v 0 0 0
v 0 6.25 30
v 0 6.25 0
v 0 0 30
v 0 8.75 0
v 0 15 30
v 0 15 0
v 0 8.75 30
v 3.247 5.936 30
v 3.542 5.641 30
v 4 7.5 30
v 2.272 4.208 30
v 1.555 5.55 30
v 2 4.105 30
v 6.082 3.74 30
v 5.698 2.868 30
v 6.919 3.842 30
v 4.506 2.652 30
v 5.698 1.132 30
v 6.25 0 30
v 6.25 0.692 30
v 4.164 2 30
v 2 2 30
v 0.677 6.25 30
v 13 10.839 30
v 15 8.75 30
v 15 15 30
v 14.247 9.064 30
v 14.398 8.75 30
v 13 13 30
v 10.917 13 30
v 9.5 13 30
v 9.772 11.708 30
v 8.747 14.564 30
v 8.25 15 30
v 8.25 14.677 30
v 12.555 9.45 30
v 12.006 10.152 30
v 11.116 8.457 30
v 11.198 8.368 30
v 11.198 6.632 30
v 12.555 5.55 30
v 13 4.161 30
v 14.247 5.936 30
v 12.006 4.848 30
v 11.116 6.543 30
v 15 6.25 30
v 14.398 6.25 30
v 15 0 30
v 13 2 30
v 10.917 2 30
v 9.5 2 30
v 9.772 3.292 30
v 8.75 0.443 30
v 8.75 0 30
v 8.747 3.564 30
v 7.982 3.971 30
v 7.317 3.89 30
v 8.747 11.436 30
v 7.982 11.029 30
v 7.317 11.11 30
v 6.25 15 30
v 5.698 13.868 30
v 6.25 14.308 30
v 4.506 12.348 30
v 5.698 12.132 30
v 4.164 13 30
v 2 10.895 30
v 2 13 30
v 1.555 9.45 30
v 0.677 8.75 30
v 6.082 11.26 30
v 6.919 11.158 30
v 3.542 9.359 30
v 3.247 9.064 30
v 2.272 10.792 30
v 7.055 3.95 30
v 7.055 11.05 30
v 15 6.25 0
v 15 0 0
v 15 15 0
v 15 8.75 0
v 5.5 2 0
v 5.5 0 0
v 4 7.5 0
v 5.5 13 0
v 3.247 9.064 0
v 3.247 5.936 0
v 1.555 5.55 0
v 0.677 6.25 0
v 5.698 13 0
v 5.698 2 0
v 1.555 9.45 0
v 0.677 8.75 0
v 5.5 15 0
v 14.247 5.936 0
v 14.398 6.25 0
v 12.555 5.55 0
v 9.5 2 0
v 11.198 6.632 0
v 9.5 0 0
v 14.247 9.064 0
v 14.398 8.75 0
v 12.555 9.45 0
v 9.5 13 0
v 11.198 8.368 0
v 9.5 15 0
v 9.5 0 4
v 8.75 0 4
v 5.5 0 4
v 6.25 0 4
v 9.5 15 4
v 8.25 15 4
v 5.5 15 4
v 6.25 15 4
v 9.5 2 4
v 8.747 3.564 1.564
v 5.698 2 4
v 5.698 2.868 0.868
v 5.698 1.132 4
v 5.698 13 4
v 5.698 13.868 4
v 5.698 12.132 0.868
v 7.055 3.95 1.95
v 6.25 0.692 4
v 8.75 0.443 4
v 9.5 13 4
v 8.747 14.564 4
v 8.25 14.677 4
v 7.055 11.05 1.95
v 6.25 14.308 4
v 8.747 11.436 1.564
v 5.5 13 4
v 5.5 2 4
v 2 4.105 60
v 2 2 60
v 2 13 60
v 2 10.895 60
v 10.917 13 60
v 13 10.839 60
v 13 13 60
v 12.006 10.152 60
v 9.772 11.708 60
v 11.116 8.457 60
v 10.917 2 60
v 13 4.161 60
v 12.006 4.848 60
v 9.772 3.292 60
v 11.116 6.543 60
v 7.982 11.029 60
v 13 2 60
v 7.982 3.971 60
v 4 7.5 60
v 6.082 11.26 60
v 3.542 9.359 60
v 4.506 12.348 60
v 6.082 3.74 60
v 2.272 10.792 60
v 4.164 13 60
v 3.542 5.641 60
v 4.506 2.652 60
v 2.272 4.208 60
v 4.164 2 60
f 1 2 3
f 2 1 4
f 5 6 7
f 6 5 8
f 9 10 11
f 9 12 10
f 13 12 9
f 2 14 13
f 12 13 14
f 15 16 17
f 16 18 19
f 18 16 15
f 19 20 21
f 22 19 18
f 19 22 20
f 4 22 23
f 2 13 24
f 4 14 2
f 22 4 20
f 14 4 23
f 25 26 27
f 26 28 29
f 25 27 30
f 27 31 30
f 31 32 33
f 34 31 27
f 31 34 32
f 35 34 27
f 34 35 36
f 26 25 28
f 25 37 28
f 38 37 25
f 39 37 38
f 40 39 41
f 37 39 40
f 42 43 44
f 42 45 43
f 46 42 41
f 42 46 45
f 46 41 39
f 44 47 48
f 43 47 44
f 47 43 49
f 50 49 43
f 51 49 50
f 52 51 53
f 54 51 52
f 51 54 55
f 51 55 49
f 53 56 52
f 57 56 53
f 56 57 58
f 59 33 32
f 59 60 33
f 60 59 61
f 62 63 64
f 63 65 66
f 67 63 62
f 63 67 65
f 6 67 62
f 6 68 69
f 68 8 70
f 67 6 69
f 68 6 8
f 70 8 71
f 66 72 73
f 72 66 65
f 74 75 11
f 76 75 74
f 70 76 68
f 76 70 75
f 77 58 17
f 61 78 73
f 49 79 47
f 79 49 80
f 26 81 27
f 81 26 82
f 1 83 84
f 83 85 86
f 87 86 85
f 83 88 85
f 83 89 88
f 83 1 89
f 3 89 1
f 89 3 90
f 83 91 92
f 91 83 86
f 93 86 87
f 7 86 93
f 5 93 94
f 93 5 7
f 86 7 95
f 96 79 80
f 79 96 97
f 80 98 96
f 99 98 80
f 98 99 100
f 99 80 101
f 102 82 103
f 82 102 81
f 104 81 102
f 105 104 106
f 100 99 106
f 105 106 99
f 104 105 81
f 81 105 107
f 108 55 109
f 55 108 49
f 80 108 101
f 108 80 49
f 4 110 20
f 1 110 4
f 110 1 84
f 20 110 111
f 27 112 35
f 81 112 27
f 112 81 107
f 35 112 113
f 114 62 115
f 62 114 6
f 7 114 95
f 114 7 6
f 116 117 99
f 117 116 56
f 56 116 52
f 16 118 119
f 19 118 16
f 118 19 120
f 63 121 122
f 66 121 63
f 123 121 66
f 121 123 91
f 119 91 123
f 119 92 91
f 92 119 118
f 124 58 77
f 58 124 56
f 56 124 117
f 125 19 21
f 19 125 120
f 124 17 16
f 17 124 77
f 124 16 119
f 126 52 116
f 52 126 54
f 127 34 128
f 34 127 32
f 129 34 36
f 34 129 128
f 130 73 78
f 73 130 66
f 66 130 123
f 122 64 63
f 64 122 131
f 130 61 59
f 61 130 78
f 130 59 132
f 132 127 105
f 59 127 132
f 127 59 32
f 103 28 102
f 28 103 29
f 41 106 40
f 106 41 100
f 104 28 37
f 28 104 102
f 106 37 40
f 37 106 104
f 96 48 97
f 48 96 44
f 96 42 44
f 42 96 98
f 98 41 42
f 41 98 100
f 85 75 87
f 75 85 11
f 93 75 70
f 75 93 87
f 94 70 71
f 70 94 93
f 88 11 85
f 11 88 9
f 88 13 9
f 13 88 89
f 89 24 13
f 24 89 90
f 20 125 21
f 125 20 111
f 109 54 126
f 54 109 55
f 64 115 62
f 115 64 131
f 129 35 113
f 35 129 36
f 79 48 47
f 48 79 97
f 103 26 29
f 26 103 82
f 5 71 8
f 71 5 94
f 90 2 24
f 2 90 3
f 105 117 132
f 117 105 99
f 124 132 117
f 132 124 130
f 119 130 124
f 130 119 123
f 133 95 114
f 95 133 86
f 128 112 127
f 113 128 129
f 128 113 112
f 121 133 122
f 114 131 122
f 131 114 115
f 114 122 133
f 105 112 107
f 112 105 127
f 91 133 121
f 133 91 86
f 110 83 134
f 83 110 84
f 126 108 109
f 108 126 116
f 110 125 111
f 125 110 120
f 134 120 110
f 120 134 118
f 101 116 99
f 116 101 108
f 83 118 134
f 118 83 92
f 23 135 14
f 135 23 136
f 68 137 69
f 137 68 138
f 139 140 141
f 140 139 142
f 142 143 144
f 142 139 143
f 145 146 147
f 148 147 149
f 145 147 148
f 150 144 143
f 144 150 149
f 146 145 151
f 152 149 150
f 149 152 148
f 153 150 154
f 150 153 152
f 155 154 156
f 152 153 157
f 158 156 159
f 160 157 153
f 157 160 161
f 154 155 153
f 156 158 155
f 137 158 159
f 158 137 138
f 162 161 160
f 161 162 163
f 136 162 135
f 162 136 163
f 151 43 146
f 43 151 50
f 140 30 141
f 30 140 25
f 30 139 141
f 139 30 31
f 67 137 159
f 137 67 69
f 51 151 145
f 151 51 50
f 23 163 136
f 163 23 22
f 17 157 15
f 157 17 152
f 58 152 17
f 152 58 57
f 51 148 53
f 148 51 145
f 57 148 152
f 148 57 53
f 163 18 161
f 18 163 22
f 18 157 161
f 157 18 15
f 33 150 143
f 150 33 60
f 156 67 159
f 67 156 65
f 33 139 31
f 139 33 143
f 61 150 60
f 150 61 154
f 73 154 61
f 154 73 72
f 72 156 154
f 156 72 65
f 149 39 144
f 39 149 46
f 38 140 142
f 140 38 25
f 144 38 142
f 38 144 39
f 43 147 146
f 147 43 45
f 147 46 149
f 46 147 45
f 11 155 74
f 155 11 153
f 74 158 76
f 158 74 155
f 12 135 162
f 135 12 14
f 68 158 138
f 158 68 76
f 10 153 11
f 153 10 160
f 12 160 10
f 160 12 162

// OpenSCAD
/**
 * Create an adapter for connecting a 15x15 square tube to Fischertechnik.
 *
 * @author Brian Schroeder
 * @since 21.04.2020
 */

/* [End Cap length] */
// Fischertechnik compatible end cap length in millimeters
EndCapLength=30; // [15, 30, 45, 60, 75, 90]

/*
 * Create the adapter with Fischertechnik compatible end cap length passed by the argument.
 *
 * @param ftiEndCapLength end cap length in millimeters (default is 15)
 */
module ftiSpuareTubeAdapter15x15(ftiEndCapLength=15) {

    union() {

        // Fischertechnik connector part
        difference() {
            dFti=4; // axis diameter
            gFtiW=2.5; // with of gap
            gFtiD=2; // depth of gap
            cube([15, 15, ftiEndCapLength]);
            // axis
            translate([7.5,dFti/2,0])cylinder(h=ftiEndCapLength, d=dFti);
            translate([7.5,15-dFti/2,0])cylinder(h=ftiEndCapLength, d=dFti);
            translate([15-dFti/2,7.5,0])cylinder(h=ftiEndCapLength, d=dFti);
            translate([dFti/2,7.5,0])cylinder(h=ftiEndCapLength, d=dFti);
            // space
            translate([7.5-gFtiW/2,0,0])cube([gFtiW, gFtiD, ftiEndCapLength]);
            translate([7.5-gFtiW/2,15-gFtiD,0])cube([gFtiD, gFtiW, ftiEndCapLength]);
            translate([15-dFti/2,7.5-gFtiW/2,0])cube([gFtiD, gFtiW, ftiEndCapLength]);
            translate([0,7.5-gFtiW/2,0])cube([gFtiD, gFtiW, ftiEndCapLength]);
            // orthoganal axis at end
            translate([7.5, 15, 0])rotate([90, 0, 0])cylinder(h=15, d=dFti);
            translate([7.5-dFti/2, 15-dFti/2, 0])cube([dFti, dFti, dFti]);
            translate([7.5-dFti/2, 0-dFti/2, 0])cube([dFti, dFti, dFti]);
        }

        // square tube connector part
        translate([2, 2, ftiEndCapLength])difference() {
            hTubeConn=(ftiEndCapLength < 60) ? 30 : (ftiEndCapLength < 75 ? 45 : 60);
            dCarveOut=8; // carve out diameter
            oCarveOut=6; // carve out offset
            // corpus
            cube([11, 11, hTubeConn]);
            // space
            translate([5.5,dCarveOut/2-oCarveOut,0])cylinder(h=hTubeConn, d=dCarveOut);
            translate([5.5,11-dCarveOut/2+oCarveOut,0])cylinder(h=hTubeConn, d=dCarveOut);
            translate([11-dCarveOut/2+oCarveOut,5.5,0])cylinder(h=hTubeConn, d=dCarveOut);
            translate([dCarveOut/2-oCarveOut,5.5,0])cylinder(h=hTubeConn, d=dCarveOut);
        }
    }
}

ftiSpuareTubeAdapter15x15(EndCapLength);
